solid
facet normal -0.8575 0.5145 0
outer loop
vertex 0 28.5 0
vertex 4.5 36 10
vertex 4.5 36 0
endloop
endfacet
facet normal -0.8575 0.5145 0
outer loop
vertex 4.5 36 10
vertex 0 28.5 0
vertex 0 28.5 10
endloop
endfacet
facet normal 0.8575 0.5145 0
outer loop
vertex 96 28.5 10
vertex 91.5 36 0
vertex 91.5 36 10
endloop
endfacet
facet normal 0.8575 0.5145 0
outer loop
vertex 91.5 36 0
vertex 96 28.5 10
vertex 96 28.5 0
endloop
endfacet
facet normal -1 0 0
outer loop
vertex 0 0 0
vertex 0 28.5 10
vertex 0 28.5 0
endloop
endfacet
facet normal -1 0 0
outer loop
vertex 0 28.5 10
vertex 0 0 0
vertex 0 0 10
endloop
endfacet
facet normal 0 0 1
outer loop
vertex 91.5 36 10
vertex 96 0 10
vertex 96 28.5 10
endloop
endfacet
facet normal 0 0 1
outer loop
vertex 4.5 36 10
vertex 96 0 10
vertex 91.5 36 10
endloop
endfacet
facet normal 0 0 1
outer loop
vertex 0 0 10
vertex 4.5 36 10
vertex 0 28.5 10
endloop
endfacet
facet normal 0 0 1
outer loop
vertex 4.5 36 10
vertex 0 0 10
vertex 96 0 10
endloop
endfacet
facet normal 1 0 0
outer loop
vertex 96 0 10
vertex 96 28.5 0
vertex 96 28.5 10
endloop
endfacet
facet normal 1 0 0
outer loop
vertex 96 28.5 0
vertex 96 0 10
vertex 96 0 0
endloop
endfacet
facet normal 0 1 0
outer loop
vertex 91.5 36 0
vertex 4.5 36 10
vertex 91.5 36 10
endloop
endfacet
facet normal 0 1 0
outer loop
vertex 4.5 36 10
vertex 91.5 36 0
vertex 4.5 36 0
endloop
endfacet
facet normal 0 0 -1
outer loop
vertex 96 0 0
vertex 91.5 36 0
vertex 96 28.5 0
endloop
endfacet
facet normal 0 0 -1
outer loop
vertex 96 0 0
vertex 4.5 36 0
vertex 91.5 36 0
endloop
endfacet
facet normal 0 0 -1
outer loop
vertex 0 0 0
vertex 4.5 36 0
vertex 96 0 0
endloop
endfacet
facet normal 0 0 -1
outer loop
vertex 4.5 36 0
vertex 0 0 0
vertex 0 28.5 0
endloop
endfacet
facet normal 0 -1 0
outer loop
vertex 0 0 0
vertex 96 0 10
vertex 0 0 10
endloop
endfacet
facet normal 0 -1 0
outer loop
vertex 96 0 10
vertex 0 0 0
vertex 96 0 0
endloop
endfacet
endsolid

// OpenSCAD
// file: charger.scad
// charger.scad - base Nitecore Intellicharger i4 model
// Andrew Ho (andrew@zeuscat.com)

include <dimensions.scad>

// Model midpoint of charger (small front bevels, no top/bottom features)
module charger_top(shell_height) {
  charger_body(shell_height, top_front_bevel_width);
}

// Model bottom of charger (large front bevels, bottom topology)
module charger_bottom(shell_height) {
  difference() {
    charger_body(shell_height, bottom_front_bevel_width);
    union() {

      // Bottom center dimple
      translate([(shell_width - dimple_top_width) / 2, -e, dimple_height])
        rotate([270, 270, 0])
        linear_extrude(height = shell_depth + e2)
        polygon([[0, 0], [0, dimple_top_width],
                 [-dimple_height, dimple_top_width + dimple_width_diff],
                 [-(dimple_height + e), dimple_top_width + dimple_width_diff],
                 [-(dimple_height + e), -dimple_width_diff],
                 [-dimple_height, -dimple_width_diff]]);

      // Rear bottom horizontal bevel
      translate([-e, shell_depth - (rear_bevel_depth), 0])
        rotate([90, 0, 90])
        right_triangle(rear_bevel_angle, rear_bevel_depth, shell_width + e2);
    }
  }
}

// Base charger body model (cut out front and back bevels)
module charger_body(shell_height, front_bevel_width) {
  difference() {
    cube([shell_width, shell_depth, shell_height]);
    union() {
      // Front outer corner vertical bevels (from front: left, right)
      translate([0, front_bevel_width, -e])
        rotate([0, 0, 270])
        right_triangle(45, front_bevel_width, shell_height + e2);
      translate([shell_width - front_bevel_width, 0, -e])
        right_triangle(45, front_bevel_width, shell_height + e2);

      // Rear outer corner vertical bevels (from front: left, right)
      translate([0, shell_depth - rear_bevel_depth, -e])
        mirror([1, 0, 0])
        rotate([0, 0, 90])
        right_triangle(rear_bevel_angle, rear_bevel_depth, shell_height + e2);
      translate([shell_width, shell_depth - rear_bevel_depth, -e])
        rotate([0, 0, 90])
        right_triangle(rear_bevel_angle, rear_bevel_depth, shell_height + e2);
    }
  }
}

// Given angle theta, adjacent length, and height, render right triangle
module right_triangle(theta, x, z) {
  y = tan(theta) * x;
  linear_extrude(height = z)
    polygon([[0, 0], [0, -e], [x + e, -e], [x + e, y], [x, y]]);
}
// file: dimensions.scad
// dimensions.scad - shared dimensions for Nitecore Intellicharger i4 wall mount
// Andrew Ho (andrew@zeuscat.com)

// Hull thickness of completed components
thickness = 1;

// Outer dimensions of charger shell (all dimensions in mm)
shell_width = 96;
shell_depth = 36;

// Top front outer corner vertical bevels are 45° cut-outs with 2.5mm faces
top_front_bevel_width = 2.5 / sqrt(2);

// Bottom front outer corner vertical bevels are 45° cut-outs with 6mm faces
bottom_front_bevel_width = 6 / sqrt(2);

// Bottom center dimple top/bottom width and cut-out height
dimple_top_width = 23;
dimple_bottom_width = 25;
dimple_width_diff = (dimple_bottom_width - dimple_top_width) / 2;
dimple_height = 2.5;

// Rear bottom horizontal bevel extends 7.5mm deep, 4.5mm inwards
rear_bevel_depth = 7.5;
rear_bevel_height = 4.5;
rear_bevel_angle = atan(rear_bevel_height / rear_bevel_depth);

// e = epsilon fudge factor to add to cut-outs for smoother rendering
e = 0.1;
e2 = e * 2;
// main file
// top_bracket.scad - top bracket for wall mount
// Andrew Ho (andrew@zeuscat.com)

include <dimensions.scad>
include <charger.scad>

charger_body(10);
